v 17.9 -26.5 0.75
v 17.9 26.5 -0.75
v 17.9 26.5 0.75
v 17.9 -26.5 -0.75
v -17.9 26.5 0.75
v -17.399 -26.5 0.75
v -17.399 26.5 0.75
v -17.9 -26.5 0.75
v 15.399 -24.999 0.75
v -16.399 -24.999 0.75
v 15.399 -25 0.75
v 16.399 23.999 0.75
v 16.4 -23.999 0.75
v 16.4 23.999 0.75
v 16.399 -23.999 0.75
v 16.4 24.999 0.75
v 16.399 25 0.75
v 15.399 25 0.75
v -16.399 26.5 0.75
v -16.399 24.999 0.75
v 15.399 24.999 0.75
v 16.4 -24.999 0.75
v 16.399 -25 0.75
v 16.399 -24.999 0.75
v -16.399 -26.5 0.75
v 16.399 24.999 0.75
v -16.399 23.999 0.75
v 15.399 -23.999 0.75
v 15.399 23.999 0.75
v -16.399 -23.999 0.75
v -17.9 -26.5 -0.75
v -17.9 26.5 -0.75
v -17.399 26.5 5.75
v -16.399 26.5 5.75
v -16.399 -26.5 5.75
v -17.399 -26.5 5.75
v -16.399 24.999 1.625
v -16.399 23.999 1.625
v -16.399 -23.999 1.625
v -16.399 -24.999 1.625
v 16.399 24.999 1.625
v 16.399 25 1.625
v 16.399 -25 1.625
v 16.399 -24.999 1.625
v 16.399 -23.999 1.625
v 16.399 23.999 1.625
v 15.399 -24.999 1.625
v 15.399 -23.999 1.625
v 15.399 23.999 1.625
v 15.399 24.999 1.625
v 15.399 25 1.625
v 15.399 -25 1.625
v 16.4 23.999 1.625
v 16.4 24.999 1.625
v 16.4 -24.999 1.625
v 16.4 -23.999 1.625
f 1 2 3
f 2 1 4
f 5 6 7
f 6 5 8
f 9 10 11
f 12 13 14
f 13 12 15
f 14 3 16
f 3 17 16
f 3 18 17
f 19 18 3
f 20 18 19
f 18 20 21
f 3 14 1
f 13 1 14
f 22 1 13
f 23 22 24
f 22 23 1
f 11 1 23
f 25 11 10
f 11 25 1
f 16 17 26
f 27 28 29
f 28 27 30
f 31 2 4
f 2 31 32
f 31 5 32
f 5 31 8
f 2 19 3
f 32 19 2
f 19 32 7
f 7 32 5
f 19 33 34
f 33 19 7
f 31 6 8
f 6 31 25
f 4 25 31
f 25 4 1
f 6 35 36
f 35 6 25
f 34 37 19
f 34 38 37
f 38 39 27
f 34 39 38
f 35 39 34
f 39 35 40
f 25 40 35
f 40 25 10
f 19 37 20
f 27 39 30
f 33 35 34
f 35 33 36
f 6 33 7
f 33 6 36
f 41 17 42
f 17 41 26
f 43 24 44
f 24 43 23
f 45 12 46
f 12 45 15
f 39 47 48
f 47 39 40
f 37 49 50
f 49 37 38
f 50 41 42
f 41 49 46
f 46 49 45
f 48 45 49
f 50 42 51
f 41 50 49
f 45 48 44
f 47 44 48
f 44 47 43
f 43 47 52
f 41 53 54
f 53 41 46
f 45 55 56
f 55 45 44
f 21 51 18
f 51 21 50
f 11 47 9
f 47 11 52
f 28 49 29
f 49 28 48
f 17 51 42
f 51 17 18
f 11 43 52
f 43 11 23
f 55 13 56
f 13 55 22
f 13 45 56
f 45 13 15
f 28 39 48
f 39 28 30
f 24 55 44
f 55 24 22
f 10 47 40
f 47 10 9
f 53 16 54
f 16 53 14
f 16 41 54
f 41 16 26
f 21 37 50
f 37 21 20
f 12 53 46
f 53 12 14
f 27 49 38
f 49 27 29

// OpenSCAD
$fa = 1;
$fs = 0.4;
//translate([0, 22, 0])
// top of case
x = 32.8;
y = 50;
cube([x+3,y+3,1.5],center=true);

translate([-((x/2)+.499),0,3-.25])
cube([1,y+3,6], center=true);

translate([((x/2)-.501),0,1])
cube([1,y,1.25], center=true);
translate([0,-((y/2)-.501),1])
cube([x,1,1.25], center=true);
translate([0,((y/2)-.501),1])
cube([x,1,1.25], center=true);
